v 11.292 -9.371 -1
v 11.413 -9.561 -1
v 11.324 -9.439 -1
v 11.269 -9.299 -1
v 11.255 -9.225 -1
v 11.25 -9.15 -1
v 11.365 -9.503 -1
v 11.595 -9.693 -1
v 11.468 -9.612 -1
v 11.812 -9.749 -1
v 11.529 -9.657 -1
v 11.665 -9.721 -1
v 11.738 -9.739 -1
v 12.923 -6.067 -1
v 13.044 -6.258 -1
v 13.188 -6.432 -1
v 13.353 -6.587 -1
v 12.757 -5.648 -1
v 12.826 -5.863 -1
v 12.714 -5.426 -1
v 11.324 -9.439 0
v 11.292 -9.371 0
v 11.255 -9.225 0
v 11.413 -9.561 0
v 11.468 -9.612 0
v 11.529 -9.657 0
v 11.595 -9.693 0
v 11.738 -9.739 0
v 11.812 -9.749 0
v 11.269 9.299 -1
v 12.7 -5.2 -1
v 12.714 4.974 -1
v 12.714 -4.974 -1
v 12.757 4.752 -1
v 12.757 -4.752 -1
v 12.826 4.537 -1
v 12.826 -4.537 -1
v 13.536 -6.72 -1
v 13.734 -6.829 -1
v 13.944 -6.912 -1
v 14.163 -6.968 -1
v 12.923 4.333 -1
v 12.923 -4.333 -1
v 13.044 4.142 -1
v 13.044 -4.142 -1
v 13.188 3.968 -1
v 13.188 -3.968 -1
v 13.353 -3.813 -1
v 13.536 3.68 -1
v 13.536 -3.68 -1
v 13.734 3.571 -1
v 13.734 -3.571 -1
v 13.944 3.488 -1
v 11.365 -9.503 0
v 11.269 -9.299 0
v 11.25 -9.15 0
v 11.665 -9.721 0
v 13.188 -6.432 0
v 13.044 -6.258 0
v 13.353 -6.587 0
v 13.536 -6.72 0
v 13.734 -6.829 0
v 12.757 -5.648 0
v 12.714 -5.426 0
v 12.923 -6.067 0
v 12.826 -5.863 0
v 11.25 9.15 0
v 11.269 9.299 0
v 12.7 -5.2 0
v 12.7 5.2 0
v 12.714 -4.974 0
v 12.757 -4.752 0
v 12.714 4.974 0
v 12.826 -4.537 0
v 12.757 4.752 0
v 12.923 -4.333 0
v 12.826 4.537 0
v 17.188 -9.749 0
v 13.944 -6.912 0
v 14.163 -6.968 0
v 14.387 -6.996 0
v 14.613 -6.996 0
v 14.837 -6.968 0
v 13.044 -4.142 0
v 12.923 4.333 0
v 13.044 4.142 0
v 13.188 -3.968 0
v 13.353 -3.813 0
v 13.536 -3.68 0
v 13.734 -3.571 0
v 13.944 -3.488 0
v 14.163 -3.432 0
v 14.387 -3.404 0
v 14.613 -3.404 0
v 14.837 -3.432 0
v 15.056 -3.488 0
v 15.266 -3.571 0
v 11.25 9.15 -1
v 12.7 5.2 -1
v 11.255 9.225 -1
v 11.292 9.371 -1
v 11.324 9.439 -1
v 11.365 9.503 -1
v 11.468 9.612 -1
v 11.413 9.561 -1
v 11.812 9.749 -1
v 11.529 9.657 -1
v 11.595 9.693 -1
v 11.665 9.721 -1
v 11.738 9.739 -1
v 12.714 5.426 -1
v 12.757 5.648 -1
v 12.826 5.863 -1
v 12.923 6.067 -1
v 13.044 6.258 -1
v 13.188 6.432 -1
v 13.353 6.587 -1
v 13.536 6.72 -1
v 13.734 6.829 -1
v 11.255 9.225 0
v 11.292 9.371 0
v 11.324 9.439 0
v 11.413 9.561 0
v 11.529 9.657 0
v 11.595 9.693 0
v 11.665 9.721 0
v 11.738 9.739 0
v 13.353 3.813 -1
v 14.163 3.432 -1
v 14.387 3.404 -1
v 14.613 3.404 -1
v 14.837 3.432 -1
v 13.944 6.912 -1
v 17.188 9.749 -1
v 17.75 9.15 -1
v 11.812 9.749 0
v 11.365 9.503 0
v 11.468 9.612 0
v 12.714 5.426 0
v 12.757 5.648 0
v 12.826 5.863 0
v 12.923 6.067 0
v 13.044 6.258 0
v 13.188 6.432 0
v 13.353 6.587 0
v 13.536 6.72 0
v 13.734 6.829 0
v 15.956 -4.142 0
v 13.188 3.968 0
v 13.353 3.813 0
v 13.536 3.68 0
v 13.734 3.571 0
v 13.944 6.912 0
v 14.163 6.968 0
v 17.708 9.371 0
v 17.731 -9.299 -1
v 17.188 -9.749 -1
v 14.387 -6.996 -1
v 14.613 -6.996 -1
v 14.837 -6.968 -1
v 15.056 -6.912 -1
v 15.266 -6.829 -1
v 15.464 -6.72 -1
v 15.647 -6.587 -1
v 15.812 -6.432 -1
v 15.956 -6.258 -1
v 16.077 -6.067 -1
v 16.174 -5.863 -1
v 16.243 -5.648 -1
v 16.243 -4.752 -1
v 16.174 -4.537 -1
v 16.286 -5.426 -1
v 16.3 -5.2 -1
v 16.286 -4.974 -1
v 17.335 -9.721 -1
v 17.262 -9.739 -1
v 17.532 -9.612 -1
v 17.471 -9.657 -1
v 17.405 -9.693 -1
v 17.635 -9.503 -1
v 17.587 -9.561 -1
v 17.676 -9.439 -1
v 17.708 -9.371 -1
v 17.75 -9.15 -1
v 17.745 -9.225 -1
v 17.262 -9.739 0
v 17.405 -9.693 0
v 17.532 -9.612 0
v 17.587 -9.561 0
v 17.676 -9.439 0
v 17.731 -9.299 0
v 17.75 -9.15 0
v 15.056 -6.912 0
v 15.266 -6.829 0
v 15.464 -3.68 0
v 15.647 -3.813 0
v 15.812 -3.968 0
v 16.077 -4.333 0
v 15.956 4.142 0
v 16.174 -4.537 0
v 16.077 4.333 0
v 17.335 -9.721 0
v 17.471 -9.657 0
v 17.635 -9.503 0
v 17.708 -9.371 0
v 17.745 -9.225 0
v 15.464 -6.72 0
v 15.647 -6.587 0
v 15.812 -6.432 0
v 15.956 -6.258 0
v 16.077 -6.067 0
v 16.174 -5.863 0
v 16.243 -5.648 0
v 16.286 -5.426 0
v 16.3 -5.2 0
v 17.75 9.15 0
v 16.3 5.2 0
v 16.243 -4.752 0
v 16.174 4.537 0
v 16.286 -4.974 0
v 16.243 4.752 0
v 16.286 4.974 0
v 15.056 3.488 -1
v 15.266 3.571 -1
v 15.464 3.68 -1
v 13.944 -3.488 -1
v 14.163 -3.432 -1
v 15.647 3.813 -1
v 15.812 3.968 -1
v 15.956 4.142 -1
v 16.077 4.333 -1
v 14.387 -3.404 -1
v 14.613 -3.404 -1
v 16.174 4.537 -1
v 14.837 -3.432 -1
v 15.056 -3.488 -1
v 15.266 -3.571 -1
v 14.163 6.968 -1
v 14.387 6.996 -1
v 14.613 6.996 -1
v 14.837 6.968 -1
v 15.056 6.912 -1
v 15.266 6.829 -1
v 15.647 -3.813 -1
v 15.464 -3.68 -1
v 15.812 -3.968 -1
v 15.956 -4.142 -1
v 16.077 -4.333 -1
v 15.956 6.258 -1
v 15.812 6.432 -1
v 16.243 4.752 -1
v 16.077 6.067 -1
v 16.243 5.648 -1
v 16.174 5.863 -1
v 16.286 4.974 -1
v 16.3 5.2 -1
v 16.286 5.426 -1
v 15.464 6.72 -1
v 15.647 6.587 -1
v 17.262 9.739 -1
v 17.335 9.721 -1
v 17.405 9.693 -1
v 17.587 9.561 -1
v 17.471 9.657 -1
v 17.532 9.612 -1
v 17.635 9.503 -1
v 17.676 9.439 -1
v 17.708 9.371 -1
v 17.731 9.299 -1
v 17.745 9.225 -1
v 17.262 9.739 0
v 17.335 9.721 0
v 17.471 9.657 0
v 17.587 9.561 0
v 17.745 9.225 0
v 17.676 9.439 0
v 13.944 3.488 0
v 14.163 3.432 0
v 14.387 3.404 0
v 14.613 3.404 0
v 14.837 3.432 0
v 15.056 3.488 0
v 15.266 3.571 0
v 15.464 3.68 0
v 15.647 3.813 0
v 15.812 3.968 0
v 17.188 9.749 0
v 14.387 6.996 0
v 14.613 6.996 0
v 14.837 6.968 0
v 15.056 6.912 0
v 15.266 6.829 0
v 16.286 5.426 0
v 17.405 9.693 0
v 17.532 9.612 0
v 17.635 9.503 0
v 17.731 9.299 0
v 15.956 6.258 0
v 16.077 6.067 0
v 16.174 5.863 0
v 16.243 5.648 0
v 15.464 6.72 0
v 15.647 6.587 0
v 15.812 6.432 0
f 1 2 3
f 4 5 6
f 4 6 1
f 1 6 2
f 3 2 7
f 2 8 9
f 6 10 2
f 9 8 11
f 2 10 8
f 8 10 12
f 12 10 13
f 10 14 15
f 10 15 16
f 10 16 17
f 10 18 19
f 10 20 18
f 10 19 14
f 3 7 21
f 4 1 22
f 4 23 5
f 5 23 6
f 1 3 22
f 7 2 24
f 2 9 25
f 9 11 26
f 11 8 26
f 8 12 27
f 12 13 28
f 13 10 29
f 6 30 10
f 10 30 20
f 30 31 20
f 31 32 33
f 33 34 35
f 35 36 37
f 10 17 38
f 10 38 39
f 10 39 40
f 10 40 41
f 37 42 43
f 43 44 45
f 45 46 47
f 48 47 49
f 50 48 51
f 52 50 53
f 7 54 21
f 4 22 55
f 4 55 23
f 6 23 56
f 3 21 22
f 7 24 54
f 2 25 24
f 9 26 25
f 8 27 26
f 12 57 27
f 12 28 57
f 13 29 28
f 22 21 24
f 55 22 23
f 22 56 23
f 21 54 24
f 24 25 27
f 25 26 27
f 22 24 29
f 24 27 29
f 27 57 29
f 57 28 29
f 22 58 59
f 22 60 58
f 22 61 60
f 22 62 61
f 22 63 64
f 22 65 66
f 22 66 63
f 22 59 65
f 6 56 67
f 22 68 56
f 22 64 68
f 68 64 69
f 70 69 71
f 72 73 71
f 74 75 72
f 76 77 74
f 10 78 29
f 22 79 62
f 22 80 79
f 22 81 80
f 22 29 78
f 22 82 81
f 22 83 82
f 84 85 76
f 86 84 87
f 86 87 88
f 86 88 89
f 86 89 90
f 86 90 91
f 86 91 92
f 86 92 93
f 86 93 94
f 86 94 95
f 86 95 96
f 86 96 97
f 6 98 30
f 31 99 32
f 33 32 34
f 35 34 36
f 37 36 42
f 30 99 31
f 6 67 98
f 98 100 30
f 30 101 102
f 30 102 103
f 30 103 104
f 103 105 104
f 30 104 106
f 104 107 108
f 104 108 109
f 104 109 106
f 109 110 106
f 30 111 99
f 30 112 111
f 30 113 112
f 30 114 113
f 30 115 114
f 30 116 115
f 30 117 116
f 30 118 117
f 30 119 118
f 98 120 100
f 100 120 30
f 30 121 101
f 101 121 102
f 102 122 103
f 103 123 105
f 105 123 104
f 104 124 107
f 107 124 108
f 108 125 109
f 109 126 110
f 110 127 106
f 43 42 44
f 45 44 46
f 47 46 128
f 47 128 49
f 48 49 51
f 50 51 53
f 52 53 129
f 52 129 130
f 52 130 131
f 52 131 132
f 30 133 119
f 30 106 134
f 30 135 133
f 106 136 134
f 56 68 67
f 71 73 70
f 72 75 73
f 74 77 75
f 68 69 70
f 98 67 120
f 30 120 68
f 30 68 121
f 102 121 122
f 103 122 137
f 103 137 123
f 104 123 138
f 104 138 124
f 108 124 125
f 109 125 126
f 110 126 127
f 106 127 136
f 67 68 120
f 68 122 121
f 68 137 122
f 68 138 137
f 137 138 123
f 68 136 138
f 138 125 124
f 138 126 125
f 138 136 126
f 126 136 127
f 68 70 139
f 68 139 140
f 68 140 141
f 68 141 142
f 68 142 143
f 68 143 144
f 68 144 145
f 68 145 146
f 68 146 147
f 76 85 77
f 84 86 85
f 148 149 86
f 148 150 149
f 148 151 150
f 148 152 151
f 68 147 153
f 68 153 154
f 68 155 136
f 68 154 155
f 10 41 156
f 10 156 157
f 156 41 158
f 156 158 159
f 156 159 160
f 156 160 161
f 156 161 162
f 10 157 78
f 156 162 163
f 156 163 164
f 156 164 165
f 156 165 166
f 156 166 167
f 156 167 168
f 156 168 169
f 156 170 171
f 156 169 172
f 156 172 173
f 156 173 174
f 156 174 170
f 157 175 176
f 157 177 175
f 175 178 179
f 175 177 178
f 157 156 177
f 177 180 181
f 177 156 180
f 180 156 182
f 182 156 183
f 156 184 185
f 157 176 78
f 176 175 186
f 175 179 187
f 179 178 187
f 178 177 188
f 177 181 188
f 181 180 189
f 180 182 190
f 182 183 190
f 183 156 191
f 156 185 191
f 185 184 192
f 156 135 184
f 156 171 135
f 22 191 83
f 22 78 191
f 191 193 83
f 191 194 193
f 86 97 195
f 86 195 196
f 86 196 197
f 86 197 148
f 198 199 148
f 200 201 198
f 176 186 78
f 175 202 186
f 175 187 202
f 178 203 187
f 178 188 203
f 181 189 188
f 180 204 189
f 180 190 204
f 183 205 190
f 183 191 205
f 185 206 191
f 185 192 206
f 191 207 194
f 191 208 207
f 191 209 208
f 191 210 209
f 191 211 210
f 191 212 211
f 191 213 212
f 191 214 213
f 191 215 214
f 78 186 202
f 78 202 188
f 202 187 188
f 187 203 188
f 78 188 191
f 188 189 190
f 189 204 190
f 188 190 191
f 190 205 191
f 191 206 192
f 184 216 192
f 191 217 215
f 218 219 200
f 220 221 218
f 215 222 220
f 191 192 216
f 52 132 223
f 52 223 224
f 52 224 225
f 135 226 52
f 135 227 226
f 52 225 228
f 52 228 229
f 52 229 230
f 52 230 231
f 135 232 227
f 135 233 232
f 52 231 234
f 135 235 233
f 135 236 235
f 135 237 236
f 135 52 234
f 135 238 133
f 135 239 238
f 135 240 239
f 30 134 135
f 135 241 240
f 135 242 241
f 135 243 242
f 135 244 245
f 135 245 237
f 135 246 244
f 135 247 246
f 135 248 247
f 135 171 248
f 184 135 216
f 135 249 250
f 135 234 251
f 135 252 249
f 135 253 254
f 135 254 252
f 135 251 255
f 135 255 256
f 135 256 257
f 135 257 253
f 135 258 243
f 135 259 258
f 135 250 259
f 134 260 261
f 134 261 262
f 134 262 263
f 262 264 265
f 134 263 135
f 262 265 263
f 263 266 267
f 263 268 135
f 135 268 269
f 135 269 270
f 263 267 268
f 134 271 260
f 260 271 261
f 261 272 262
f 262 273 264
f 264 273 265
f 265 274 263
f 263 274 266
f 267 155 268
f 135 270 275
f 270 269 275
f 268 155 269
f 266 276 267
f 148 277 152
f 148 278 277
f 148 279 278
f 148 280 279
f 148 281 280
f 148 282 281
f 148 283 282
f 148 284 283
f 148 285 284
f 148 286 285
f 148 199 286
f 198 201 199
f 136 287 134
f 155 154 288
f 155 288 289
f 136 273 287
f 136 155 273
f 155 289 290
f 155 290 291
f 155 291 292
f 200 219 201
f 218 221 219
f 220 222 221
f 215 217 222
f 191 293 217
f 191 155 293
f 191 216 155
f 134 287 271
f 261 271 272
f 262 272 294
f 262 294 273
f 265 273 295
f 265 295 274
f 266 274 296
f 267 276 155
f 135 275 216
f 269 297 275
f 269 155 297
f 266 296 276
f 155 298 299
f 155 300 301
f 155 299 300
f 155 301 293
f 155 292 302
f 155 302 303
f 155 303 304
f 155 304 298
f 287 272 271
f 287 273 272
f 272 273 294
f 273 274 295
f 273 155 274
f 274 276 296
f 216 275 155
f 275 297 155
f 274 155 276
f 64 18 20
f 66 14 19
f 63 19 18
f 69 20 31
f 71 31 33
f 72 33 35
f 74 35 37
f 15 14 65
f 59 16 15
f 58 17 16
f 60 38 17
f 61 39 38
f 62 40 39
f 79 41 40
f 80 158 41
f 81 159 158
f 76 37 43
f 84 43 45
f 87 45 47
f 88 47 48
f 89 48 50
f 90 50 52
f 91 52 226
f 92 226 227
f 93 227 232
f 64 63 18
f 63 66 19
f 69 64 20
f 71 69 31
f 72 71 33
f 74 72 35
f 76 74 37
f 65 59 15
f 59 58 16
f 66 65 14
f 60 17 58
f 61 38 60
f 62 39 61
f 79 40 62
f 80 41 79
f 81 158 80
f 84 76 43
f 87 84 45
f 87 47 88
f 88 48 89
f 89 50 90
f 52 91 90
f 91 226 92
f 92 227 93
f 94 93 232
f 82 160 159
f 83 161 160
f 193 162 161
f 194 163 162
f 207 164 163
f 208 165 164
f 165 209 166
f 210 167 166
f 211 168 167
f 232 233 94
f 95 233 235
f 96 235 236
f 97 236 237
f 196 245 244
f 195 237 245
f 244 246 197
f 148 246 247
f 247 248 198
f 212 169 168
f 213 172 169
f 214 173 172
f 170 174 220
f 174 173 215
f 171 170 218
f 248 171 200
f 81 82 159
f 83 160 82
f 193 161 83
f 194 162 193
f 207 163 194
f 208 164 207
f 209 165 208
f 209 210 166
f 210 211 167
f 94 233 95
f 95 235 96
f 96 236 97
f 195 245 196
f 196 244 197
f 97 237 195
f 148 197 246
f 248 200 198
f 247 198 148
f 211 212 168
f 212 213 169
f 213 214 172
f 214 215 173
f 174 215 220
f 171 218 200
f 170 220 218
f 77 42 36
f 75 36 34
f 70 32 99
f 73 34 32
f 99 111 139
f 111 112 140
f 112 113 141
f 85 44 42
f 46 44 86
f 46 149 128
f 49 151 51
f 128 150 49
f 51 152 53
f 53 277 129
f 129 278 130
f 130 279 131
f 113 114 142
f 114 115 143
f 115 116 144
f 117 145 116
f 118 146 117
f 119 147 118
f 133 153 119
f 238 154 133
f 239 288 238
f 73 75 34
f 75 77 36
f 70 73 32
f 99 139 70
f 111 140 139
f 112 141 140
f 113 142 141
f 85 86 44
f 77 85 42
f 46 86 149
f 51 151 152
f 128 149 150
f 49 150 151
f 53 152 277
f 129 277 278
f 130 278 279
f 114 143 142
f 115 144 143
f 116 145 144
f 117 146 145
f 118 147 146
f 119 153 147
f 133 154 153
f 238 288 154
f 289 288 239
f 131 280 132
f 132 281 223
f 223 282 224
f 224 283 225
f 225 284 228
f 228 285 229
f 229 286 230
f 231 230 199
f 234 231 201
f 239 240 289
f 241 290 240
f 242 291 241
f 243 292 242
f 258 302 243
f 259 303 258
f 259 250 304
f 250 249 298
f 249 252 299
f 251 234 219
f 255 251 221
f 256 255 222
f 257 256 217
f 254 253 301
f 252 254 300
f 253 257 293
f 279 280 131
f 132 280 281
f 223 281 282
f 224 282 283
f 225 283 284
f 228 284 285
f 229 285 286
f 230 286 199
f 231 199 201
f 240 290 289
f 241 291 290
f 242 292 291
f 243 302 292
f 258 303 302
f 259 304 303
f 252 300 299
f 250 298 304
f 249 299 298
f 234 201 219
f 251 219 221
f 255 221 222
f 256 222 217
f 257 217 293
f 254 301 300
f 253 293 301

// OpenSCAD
$fn = 50;

difference() {
	union() {
		translate(v = [14.5, 0, -1]) {
			hull() {
				translate(v = [-2.65, 9.15, 0]) {
					cylinder(h = 1, r = 0.6);
				}
				translate(v = [2.65, 9.15, 0]) {
					cylinder(h = 1, r = 0.6);
				}
				translate(v = [-2.65, -9.15, 0]) {
					cylinder(h = 1, r = 0.6);
				}
				translate(v = [2.65, -9.15, 0]) {
					cylinder(h = 1, r = 0.6);
				}
			}
		}
	}
	union() {
		translate(v = [14.5, -5.2, -2]) {
			cylinder(h = 3, r = 1.8);
		}
		translate(v = [14.5, 5.2, -2]) {
			cylinder(h = 3, r = 1.8);
		}
	}
}
